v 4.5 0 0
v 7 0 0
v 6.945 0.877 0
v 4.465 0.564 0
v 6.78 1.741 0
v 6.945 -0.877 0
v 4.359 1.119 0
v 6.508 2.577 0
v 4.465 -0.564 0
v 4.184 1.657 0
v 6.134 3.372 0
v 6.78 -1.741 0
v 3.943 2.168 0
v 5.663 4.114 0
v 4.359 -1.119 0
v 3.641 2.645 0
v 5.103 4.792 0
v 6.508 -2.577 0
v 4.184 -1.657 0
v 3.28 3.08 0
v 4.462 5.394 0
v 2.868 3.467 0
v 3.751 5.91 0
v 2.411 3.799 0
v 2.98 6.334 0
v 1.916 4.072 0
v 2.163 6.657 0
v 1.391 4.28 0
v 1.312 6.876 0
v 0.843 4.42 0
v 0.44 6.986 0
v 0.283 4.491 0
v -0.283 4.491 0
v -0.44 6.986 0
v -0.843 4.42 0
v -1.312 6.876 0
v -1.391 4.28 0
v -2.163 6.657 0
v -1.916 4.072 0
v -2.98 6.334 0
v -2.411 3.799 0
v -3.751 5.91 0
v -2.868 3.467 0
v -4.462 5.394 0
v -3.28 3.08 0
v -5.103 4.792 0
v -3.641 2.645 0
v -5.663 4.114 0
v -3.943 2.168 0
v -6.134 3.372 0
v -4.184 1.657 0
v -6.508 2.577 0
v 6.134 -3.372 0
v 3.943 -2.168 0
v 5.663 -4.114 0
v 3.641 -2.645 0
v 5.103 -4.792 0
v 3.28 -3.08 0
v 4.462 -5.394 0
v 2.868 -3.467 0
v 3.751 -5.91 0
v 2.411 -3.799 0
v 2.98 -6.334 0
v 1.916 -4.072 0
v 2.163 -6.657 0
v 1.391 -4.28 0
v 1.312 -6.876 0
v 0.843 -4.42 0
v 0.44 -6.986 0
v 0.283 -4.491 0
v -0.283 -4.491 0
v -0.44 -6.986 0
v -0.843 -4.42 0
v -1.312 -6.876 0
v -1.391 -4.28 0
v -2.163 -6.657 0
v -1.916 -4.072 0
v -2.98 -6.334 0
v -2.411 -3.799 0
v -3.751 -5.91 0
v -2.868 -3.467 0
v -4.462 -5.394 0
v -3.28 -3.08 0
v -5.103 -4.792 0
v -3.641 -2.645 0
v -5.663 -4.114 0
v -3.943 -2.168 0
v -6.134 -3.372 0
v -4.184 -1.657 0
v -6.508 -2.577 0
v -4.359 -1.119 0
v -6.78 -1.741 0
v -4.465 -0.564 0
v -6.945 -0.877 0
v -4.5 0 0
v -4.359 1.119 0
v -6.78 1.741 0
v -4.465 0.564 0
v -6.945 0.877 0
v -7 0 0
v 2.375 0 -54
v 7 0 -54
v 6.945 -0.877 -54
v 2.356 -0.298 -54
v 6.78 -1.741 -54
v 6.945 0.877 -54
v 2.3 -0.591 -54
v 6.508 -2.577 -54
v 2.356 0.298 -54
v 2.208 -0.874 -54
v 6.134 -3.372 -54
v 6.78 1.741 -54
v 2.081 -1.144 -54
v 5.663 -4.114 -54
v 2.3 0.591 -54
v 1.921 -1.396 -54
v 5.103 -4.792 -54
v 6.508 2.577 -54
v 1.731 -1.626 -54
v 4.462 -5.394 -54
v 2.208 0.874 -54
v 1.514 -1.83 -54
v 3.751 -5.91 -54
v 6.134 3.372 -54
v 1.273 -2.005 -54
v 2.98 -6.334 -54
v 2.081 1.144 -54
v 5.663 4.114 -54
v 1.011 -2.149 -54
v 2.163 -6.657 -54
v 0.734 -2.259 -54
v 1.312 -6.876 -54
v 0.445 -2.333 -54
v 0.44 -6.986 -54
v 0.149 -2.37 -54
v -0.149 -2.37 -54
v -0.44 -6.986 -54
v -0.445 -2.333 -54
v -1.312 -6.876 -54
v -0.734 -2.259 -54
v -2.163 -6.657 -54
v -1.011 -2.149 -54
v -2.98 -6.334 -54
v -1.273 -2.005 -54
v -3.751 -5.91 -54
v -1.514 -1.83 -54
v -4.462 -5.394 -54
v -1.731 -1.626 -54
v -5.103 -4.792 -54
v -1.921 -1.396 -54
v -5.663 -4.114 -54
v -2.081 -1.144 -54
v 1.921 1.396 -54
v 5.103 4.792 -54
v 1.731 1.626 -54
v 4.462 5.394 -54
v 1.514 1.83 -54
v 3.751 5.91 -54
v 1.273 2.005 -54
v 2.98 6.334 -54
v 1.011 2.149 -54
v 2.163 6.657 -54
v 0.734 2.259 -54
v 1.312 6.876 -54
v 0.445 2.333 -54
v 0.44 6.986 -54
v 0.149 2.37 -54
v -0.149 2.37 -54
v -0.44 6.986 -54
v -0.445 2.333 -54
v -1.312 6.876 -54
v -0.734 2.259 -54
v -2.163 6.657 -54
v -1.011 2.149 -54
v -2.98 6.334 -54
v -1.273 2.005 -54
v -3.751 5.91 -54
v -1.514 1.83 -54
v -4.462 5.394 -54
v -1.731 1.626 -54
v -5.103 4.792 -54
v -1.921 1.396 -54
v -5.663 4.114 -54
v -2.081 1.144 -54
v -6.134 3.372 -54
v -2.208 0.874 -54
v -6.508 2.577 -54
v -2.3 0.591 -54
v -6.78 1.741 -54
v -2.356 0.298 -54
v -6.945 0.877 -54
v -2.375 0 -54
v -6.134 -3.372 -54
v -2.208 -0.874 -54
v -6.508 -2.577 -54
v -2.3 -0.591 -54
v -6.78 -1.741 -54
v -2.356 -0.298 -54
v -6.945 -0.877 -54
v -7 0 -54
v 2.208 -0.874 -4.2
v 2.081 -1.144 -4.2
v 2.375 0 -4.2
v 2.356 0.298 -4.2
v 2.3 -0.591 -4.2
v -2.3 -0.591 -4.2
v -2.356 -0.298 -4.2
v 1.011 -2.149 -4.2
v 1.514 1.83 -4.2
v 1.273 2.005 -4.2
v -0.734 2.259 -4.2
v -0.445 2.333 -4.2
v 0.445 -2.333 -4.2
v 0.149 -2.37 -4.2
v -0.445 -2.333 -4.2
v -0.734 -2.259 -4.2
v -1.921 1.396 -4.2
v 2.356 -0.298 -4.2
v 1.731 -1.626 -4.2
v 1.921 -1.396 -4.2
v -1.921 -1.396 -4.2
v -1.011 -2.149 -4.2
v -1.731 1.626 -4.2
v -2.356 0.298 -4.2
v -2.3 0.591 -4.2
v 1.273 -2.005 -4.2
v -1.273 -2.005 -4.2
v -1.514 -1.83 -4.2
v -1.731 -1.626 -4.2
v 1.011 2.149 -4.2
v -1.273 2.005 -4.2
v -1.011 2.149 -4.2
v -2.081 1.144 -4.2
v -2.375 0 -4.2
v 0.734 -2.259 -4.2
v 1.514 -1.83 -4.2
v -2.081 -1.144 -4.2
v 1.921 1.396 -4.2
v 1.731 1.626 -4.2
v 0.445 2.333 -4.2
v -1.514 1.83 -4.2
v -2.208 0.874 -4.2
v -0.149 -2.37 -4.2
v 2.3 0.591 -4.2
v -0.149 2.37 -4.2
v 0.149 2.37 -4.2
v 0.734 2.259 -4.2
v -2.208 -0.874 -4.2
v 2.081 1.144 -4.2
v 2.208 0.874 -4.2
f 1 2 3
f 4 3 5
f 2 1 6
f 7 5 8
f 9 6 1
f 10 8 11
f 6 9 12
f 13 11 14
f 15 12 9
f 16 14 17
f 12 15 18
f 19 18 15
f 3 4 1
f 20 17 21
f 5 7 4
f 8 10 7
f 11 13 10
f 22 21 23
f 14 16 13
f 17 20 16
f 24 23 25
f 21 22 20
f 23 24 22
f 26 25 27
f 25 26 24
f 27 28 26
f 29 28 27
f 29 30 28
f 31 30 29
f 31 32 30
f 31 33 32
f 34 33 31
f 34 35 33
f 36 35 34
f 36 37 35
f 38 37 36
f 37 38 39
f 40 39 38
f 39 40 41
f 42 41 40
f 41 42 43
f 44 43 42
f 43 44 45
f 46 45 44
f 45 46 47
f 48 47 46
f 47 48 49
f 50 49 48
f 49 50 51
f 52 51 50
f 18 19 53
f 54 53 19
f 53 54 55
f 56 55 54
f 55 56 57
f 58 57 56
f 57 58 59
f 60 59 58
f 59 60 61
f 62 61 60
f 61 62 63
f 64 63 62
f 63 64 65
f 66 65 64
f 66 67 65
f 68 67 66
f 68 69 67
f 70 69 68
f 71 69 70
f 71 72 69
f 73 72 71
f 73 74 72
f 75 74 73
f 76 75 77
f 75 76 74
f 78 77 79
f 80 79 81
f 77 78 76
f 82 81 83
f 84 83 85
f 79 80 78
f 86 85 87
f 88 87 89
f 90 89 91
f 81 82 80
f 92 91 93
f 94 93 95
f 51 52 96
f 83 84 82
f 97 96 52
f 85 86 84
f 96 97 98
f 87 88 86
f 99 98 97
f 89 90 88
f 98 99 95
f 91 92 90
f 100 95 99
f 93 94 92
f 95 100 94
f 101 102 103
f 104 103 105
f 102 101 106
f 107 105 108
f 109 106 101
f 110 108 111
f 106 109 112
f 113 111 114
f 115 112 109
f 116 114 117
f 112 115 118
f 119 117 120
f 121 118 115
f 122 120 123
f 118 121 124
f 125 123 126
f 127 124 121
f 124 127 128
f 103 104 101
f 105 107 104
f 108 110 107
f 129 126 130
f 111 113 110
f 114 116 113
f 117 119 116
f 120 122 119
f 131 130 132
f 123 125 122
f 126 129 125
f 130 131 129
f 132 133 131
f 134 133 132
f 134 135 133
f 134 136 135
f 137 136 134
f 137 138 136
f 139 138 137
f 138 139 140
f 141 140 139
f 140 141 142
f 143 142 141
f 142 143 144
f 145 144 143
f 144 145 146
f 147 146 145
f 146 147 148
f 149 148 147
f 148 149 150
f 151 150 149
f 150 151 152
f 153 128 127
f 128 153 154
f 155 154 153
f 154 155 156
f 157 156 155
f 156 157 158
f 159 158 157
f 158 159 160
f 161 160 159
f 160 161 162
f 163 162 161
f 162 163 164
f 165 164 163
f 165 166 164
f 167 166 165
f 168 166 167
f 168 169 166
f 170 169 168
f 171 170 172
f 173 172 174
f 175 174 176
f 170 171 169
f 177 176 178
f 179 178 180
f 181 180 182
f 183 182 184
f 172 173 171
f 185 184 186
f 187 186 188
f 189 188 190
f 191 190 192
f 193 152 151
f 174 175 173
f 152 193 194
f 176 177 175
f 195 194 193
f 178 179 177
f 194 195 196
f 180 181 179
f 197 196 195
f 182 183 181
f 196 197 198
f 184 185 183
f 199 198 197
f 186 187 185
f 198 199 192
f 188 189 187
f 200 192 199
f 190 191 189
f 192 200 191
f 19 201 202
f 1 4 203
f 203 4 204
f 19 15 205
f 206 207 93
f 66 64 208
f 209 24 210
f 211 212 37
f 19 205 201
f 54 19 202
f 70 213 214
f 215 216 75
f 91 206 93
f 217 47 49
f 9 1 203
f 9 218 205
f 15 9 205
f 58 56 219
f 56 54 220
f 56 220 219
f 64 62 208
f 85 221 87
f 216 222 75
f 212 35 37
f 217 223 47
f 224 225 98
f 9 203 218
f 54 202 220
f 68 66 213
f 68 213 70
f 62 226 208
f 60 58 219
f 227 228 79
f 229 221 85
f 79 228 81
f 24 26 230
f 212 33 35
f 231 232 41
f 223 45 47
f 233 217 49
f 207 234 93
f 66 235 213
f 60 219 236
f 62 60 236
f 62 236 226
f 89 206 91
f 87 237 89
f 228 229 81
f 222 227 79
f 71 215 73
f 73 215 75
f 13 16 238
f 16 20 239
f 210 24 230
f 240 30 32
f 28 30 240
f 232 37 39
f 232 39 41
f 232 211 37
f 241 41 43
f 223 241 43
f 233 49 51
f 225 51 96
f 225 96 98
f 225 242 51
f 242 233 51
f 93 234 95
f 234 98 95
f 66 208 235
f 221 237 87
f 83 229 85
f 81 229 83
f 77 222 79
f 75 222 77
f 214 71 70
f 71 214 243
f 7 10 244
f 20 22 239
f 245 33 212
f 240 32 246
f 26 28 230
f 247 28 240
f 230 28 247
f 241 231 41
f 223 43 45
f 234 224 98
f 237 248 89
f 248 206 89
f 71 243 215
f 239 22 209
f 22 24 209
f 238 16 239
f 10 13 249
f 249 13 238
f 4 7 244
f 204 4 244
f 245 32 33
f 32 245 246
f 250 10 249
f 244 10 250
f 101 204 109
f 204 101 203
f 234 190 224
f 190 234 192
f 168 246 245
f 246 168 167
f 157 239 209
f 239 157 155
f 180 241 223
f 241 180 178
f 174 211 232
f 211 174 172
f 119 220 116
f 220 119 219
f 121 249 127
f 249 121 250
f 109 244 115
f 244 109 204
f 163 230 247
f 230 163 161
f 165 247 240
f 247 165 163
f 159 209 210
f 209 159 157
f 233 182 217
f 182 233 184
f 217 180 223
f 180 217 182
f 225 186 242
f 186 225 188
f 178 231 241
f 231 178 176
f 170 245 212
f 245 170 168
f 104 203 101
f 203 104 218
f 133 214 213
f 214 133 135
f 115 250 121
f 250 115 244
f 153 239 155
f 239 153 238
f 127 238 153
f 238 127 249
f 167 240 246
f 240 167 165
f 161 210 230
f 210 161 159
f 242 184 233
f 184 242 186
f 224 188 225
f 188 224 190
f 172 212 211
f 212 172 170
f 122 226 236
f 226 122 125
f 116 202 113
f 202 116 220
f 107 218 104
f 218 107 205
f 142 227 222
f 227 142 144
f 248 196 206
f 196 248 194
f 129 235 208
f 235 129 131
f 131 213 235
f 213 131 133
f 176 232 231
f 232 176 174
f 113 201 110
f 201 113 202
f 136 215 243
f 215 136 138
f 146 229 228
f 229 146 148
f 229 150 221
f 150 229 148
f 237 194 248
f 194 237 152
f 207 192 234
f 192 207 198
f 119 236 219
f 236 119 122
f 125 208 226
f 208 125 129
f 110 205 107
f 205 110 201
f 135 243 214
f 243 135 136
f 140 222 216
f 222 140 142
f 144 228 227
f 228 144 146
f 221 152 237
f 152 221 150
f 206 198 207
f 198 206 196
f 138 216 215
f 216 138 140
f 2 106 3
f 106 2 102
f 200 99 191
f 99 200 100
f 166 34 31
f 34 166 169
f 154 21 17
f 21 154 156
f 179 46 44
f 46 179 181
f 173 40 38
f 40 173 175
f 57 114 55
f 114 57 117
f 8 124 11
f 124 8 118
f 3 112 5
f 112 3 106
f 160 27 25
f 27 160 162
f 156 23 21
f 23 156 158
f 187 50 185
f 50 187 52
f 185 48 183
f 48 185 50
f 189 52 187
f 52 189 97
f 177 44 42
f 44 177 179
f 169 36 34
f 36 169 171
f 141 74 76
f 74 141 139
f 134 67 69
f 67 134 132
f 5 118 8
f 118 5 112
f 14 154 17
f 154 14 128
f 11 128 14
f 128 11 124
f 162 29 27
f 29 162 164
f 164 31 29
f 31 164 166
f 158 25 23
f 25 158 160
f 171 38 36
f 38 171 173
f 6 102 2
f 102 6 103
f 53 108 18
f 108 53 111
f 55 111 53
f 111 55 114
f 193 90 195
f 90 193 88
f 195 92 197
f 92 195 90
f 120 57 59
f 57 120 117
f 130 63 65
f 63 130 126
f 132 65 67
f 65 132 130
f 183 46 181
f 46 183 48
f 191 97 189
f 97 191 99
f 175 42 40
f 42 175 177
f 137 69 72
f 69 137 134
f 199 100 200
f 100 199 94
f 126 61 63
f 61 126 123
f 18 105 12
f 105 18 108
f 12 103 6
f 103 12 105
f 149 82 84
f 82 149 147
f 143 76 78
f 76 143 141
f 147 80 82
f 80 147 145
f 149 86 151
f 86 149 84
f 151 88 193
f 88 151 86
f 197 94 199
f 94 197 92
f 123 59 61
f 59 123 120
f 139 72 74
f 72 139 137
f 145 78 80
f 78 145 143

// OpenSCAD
$fn = 50;


difference() {
	union() {
		translate(v = [0, 0, -54.0000000000]) {
			cylinder(h = 54, r = 7.0000000000);
		}
		cylinder(h = 0, r = 10.0000000000);
	}
	union() {
		translate(v = [0, 0, 0]) {
			rotate(a = [0, 0, 0]) {
				difference() {
					union() {
						#translate(v = [0, 0, -54.0000000000]) {
							cylinder(h = 54, r = 2.2500000000);
						}
						#translate(v = [0, 0, -4.2000000000]) {
							cylinder(h = 4.2000000000, r = 7.0000000000, r1 = 2.3750000000, r2 = 4.5000000000);
						}
						#translate(v = [0, 0, -54.0000000000]) {
							cylinder(h = 54, r = 2.3750000000);
						}
						#translate(v = [0, 0, -54.0000000000]) {
							cylinder(h = 54, r = 2.2500000000);
						}
					}
					union();
				}
			}
		}
	}
}
